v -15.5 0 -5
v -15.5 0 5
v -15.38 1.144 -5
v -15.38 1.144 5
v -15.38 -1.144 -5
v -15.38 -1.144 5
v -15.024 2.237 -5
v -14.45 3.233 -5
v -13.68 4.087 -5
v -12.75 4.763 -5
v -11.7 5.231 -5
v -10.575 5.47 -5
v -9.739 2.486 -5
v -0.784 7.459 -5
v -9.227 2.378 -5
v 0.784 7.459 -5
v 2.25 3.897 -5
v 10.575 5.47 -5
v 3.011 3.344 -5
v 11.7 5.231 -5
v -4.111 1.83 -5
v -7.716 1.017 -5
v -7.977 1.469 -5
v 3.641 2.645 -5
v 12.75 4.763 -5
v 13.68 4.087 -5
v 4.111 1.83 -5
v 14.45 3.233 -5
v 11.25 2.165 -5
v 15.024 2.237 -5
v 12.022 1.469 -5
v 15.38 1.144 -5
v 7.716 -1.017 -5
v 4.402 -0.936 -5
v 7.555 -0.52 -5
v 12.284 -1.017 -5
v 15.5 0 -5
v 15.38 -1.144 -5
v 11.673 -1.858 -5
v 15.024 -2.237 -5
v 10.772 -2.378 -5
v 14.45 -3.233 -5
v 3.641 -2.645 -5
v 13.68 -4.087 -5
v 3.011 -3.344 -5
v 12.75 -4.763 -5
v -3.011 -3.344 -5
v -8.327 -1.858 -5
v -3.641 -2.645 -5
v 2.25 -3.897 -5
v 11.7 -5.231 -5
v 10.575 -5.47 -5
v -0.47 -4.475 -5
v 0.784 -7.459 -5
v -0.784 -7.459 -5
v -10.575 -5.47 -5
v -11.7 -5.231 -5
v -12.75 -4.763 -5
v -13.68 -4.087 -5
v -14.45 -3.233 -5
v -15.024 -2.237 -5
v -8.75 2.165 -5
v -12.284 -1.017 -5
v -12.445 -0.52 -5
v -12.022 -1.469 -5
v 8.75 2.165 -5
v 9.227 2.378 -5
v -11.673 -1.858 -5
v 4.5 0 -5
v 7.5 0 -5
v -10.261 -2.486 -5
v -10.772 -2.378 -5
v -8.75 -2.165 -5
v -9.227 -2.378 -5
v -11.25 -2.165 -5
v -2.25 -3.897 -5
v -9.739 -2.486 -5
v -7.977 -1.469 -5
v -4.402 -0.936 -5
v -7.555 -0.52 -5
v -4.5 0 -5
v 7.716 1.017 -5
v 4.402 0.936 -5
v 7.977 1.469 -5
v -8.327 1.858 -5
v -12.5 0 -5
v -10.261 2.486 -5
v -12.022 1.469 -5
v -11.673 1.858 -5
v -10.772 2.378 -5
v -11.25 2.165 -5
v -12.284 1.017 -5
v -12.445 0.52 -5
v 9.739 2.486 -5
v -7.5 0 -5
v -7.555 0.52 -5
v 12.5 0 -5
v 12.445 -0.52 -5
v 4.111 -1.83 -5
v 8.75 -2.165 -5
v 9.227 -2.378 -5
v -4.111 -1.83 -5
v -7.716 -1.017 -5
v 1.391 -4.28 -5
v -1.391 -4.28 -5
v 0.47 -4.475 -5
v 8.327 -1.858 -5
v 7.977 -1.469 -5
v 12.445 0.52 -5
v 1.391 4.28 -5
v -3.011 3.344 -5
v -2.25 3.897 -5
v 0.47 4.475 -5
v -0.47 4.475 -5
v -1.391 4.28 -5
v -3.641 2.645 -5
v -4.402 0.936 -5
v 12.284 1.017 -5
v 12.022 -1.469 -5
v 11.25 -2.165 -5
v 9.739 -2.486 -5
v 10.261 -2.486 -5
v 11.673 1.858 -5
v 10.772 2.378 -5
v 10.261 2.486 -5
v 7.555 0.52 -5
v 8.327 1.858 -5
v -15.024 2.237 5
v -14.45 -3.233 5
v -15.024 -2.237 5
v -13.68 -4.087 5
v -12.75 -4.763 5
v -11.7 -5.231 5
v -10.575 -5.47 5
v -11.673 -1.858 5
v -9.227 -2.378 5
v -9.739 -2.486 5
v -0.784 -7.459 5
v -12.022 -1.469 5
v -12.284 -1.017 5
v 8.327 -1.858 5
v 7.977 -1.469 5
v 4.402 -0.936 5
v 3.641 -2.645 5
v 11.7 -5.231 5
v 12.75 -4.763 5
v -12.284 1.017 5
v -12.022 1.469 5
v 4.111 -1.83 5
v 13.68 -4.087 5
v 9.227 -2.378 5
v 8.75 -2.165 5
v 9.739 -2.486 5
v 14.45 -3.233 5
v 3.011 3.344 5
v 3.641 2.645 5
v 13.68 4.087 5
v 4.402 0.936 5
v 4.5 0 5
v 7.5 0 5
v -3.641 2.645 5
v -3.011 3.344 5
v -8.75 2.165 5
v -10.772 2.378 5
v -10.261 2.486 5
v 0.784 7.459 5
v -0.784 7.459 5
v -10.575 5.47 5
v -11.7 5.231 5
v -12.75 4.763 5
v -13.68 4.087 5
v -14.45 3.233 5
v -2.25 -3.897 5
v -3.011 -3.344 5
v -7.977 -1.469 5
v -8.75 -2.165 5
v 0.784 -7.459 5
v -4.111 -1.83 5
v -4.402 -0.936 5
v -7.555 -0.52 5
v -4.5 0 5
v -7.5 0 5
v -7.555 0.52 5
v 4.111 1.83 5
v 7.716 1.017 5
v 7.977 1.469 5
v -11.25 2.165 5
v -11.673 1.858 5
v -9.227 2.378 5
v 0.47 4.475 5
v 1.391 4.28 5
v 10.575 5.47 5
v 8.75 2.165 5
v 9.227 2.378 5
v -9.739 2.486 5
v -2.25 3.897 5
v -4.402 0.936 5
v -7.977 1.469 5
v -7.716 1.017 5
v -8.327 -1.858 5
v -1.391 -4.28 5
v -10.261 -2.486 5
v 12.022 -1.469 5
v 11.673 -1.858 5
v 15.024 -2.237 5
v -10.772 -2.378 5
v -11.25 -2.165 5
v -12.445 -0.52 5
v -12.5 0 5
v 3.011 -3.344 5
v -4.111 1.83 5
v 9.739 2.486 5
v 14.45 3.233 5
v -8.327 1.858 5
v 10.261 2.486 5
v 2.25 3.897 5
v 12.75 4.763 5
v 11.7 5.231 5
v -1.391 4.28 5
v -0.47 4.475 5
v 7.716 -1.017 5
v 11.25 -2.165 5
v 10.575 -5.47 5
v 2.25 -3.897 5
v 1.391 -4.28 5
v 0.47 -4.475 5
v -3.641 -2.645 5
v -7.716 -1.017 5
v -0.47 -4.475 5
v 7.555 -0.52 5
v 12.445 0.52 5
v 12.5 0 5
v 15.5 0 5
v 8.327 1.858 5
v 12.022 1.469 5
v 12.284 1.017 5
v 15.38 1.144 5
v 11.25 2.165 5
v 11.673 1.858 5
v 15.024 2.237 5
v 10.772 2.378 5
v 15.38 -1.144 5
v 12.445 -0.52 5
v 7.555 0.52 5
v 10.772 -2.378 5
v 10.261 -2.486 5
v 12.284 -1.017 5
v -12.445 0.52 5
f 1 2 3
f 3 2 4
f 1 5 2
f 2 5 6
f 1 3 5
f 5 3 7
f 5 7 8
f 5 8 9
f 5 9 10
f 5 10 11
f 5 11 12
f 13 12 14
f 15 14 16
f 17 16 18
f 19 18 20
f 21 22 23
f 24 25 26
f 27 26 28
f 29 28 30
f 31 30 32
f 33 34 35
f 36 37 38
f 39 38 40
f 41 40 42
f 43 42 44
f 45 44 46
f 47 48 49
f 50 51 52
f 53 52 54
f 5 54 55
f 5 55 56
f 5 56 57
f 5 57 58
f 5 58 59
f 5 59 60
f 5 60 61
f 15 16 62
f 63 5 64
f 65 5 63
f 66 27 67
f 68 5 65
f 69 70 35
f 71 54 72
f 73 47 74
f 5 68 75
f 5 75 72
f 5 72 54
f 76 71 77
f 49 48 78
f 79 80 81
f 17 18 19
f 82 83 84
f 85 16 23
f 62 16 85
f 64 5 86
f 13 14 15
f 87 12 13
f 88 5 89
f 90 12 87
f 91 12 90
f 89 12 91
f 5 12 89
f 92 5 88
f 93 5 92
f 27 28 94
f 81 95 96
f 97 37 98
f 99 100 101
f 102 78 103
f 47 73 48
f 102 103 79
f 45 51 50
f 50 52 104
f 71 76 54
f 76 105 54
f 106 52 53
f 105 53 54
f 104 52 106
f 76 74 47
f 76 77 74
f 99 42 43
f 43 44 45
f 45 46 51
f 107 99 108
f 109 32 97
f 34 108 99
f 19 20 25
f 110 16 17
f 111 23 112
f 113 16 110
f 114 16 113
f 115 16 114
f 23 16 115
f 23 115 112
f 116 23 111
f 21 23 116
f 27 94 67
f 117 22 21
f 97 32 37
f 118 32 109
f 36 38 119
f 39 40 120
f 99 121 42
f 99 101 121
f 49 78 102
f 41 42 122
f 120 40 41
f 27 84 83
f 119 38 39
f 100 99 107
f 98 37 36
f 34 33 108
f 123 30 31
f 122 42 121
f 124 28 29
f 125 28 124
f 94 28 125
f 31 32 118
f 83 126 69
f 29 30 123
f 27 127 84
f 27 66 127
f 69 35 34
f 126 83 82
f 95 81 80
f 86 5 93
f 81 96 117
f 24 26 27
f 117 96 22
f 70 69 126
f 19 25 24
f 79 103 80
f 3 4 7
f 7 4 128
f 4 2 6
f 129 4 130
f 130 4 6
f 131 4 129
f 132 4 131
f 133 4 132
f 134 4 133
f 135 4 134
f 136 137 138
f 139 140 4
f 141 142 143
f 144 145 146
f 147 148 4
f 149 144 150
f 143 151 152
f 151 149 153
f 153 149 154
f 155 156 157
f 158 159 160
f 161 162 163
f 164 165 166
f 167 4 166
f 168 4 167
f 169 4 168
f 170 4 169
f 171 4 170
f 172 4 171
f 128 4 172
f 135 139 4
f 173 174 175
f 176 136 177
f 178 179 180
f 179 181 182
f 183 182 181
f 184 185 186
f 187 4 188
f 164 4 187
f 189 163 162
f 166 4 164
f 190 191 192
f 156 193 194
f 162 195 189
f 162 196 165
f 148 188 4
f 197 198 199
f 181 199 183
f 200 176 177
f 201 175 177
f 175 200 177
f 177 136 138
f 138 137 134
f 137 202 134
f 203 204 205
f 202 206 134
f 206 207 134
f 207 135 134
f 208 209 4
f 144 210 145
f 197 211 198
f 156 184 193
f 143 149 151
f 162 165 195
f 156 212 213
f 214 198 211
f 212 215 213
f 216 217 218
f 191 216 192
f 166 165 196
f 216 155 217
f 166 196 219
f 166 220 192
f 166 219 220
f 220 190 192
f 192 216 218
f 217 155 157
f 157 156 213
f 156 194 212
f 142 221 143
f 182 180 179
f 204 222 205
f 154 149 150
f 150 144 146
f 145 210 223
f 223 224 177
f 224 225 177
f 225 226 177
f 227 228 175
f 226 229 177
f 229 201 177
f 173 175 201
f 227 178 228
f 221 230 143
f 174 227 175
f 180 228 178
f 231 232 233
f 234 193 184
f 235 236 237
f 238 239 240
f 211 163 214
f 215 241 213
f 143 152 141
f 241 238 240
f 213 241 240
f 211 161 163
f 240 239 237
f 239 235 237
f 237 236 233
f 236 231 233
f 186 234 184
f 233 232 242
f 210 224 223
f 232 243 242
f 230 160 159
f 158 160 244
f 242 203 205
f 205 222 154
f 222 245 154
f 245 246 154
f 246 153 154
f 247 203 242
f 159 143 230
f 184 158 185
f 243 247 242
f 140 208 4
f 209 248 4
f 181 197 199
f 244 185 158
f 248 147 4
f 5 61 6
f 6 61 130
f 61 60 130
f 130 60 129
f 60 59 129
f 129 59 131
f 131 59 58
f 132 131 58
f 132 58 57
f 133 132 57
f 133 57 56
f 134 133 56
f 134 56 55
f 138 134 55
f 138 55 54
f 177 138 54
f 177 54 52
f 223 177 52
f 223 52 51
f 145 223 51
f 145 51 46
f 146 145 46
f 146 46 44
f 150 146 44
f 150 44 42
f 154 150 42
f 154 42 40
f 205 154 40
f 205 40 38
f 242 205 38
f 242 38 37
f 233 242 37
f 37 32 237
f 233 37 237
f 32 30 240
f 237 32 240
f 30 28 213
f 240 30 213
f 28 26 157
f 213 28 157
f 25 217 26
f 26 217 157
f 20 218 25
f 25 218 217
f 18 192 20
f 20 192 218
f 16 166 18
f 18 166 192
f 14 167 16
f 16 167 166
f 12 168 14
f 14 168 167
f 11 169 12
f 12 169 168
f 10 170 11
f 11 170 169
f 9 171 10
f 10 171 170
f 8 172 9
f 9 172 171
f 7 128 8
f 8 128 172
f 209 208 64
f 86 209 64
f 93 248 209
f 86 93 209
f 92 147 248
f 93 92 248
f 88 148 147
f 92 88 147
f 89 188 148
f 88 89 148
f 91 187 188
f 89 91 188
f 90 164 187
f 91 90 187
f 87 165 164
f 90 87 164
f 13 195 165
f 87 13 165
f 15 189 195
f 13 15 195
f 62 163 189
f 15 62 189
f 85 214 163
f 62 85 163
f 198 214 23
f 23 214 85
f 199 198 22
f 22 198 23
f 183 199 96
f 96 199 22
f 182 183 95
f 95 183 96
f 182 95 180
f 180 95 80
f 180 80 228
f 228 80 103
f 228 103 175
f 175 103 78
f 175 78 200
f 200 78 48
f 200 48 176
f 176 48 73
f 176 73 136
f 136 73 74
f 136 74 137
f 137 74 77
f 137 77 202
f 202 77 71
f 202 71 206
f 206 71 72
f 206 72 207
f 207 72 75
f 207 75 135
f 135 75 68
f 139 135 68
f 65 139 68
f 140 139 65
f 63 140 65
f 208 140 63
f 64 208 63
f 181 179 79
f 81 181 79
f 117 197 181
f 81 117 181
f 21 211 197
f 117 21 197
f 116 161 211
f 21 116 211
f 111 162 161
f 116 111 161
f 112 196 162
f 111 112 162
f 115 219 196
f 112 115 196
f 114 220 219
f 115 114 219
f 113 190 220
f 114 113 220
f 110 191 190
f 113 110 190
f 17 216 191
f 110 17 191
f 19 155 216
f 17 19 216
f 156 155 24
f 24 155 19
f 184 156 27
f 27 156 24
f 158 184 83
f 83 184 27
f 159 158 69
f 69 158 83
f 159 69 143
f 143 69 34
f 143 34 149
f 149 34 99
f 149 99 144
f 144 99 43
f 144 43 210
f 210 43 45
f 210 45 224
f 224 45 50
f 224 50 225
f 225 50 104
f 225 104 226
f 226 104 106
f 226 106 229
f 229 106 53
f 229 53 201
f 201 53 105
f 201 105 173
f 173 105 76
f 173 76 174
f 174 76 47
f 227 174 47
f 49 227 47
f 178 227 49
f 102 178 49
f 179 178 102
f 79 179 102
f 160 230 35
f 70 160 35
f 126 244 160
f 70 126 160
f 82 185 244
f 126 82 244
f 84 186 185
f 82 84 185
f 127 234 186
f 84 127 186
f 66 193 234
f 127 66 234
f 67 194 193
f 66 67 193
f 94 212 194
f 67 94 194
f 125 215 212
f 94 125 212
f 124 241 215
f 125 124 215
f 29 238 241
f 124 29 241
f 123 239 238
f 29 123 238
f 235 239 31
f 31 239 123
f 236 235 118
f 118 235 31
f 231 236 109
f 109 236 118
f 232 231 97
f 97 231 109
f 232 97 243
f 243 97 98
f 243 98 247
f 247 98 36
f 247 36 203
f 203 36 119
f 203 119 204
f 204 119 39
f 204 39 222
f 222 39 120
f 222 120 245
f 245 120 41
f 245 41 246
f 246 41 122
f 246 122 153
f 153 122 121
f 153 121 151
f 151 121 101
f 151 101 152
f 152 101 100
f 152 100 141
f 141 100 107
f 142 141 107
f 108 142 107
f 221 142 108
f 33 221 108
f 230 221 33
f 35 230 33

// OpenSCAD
$fn=30;


module part3($w1, $w2, $d, $h)
{
	difference(){
		hull(){
			cylinder(h=$h, r=0.5*$w1+$d,center=true);
			translate([(0.5*($w1+$w2)+$d),0,0])
				cylinder(h=$h, r=0.5*$w2+$d,center=true);
			translate([-(0.5*($w1+$w2)+$d),0,0])
				cylinder(h=$h, r=0.5*$w2+$d,center=true);
		}
		union(){
			cylinder(h=$h, r=0.5*$w1,center=true);
			translate([(0.5*($w1+$w2)+$d),0,0])
				cylinder(h=$h, r=0.5*$w2,center=true);
			translate([-(0.5*($w1+$w2)+$d),0,0])
				cylinder(h=$h, r=0.5*$w2,center=true);
		}
	}
}

part3($w1=9, $w2=5, $d=3, $h=10);
